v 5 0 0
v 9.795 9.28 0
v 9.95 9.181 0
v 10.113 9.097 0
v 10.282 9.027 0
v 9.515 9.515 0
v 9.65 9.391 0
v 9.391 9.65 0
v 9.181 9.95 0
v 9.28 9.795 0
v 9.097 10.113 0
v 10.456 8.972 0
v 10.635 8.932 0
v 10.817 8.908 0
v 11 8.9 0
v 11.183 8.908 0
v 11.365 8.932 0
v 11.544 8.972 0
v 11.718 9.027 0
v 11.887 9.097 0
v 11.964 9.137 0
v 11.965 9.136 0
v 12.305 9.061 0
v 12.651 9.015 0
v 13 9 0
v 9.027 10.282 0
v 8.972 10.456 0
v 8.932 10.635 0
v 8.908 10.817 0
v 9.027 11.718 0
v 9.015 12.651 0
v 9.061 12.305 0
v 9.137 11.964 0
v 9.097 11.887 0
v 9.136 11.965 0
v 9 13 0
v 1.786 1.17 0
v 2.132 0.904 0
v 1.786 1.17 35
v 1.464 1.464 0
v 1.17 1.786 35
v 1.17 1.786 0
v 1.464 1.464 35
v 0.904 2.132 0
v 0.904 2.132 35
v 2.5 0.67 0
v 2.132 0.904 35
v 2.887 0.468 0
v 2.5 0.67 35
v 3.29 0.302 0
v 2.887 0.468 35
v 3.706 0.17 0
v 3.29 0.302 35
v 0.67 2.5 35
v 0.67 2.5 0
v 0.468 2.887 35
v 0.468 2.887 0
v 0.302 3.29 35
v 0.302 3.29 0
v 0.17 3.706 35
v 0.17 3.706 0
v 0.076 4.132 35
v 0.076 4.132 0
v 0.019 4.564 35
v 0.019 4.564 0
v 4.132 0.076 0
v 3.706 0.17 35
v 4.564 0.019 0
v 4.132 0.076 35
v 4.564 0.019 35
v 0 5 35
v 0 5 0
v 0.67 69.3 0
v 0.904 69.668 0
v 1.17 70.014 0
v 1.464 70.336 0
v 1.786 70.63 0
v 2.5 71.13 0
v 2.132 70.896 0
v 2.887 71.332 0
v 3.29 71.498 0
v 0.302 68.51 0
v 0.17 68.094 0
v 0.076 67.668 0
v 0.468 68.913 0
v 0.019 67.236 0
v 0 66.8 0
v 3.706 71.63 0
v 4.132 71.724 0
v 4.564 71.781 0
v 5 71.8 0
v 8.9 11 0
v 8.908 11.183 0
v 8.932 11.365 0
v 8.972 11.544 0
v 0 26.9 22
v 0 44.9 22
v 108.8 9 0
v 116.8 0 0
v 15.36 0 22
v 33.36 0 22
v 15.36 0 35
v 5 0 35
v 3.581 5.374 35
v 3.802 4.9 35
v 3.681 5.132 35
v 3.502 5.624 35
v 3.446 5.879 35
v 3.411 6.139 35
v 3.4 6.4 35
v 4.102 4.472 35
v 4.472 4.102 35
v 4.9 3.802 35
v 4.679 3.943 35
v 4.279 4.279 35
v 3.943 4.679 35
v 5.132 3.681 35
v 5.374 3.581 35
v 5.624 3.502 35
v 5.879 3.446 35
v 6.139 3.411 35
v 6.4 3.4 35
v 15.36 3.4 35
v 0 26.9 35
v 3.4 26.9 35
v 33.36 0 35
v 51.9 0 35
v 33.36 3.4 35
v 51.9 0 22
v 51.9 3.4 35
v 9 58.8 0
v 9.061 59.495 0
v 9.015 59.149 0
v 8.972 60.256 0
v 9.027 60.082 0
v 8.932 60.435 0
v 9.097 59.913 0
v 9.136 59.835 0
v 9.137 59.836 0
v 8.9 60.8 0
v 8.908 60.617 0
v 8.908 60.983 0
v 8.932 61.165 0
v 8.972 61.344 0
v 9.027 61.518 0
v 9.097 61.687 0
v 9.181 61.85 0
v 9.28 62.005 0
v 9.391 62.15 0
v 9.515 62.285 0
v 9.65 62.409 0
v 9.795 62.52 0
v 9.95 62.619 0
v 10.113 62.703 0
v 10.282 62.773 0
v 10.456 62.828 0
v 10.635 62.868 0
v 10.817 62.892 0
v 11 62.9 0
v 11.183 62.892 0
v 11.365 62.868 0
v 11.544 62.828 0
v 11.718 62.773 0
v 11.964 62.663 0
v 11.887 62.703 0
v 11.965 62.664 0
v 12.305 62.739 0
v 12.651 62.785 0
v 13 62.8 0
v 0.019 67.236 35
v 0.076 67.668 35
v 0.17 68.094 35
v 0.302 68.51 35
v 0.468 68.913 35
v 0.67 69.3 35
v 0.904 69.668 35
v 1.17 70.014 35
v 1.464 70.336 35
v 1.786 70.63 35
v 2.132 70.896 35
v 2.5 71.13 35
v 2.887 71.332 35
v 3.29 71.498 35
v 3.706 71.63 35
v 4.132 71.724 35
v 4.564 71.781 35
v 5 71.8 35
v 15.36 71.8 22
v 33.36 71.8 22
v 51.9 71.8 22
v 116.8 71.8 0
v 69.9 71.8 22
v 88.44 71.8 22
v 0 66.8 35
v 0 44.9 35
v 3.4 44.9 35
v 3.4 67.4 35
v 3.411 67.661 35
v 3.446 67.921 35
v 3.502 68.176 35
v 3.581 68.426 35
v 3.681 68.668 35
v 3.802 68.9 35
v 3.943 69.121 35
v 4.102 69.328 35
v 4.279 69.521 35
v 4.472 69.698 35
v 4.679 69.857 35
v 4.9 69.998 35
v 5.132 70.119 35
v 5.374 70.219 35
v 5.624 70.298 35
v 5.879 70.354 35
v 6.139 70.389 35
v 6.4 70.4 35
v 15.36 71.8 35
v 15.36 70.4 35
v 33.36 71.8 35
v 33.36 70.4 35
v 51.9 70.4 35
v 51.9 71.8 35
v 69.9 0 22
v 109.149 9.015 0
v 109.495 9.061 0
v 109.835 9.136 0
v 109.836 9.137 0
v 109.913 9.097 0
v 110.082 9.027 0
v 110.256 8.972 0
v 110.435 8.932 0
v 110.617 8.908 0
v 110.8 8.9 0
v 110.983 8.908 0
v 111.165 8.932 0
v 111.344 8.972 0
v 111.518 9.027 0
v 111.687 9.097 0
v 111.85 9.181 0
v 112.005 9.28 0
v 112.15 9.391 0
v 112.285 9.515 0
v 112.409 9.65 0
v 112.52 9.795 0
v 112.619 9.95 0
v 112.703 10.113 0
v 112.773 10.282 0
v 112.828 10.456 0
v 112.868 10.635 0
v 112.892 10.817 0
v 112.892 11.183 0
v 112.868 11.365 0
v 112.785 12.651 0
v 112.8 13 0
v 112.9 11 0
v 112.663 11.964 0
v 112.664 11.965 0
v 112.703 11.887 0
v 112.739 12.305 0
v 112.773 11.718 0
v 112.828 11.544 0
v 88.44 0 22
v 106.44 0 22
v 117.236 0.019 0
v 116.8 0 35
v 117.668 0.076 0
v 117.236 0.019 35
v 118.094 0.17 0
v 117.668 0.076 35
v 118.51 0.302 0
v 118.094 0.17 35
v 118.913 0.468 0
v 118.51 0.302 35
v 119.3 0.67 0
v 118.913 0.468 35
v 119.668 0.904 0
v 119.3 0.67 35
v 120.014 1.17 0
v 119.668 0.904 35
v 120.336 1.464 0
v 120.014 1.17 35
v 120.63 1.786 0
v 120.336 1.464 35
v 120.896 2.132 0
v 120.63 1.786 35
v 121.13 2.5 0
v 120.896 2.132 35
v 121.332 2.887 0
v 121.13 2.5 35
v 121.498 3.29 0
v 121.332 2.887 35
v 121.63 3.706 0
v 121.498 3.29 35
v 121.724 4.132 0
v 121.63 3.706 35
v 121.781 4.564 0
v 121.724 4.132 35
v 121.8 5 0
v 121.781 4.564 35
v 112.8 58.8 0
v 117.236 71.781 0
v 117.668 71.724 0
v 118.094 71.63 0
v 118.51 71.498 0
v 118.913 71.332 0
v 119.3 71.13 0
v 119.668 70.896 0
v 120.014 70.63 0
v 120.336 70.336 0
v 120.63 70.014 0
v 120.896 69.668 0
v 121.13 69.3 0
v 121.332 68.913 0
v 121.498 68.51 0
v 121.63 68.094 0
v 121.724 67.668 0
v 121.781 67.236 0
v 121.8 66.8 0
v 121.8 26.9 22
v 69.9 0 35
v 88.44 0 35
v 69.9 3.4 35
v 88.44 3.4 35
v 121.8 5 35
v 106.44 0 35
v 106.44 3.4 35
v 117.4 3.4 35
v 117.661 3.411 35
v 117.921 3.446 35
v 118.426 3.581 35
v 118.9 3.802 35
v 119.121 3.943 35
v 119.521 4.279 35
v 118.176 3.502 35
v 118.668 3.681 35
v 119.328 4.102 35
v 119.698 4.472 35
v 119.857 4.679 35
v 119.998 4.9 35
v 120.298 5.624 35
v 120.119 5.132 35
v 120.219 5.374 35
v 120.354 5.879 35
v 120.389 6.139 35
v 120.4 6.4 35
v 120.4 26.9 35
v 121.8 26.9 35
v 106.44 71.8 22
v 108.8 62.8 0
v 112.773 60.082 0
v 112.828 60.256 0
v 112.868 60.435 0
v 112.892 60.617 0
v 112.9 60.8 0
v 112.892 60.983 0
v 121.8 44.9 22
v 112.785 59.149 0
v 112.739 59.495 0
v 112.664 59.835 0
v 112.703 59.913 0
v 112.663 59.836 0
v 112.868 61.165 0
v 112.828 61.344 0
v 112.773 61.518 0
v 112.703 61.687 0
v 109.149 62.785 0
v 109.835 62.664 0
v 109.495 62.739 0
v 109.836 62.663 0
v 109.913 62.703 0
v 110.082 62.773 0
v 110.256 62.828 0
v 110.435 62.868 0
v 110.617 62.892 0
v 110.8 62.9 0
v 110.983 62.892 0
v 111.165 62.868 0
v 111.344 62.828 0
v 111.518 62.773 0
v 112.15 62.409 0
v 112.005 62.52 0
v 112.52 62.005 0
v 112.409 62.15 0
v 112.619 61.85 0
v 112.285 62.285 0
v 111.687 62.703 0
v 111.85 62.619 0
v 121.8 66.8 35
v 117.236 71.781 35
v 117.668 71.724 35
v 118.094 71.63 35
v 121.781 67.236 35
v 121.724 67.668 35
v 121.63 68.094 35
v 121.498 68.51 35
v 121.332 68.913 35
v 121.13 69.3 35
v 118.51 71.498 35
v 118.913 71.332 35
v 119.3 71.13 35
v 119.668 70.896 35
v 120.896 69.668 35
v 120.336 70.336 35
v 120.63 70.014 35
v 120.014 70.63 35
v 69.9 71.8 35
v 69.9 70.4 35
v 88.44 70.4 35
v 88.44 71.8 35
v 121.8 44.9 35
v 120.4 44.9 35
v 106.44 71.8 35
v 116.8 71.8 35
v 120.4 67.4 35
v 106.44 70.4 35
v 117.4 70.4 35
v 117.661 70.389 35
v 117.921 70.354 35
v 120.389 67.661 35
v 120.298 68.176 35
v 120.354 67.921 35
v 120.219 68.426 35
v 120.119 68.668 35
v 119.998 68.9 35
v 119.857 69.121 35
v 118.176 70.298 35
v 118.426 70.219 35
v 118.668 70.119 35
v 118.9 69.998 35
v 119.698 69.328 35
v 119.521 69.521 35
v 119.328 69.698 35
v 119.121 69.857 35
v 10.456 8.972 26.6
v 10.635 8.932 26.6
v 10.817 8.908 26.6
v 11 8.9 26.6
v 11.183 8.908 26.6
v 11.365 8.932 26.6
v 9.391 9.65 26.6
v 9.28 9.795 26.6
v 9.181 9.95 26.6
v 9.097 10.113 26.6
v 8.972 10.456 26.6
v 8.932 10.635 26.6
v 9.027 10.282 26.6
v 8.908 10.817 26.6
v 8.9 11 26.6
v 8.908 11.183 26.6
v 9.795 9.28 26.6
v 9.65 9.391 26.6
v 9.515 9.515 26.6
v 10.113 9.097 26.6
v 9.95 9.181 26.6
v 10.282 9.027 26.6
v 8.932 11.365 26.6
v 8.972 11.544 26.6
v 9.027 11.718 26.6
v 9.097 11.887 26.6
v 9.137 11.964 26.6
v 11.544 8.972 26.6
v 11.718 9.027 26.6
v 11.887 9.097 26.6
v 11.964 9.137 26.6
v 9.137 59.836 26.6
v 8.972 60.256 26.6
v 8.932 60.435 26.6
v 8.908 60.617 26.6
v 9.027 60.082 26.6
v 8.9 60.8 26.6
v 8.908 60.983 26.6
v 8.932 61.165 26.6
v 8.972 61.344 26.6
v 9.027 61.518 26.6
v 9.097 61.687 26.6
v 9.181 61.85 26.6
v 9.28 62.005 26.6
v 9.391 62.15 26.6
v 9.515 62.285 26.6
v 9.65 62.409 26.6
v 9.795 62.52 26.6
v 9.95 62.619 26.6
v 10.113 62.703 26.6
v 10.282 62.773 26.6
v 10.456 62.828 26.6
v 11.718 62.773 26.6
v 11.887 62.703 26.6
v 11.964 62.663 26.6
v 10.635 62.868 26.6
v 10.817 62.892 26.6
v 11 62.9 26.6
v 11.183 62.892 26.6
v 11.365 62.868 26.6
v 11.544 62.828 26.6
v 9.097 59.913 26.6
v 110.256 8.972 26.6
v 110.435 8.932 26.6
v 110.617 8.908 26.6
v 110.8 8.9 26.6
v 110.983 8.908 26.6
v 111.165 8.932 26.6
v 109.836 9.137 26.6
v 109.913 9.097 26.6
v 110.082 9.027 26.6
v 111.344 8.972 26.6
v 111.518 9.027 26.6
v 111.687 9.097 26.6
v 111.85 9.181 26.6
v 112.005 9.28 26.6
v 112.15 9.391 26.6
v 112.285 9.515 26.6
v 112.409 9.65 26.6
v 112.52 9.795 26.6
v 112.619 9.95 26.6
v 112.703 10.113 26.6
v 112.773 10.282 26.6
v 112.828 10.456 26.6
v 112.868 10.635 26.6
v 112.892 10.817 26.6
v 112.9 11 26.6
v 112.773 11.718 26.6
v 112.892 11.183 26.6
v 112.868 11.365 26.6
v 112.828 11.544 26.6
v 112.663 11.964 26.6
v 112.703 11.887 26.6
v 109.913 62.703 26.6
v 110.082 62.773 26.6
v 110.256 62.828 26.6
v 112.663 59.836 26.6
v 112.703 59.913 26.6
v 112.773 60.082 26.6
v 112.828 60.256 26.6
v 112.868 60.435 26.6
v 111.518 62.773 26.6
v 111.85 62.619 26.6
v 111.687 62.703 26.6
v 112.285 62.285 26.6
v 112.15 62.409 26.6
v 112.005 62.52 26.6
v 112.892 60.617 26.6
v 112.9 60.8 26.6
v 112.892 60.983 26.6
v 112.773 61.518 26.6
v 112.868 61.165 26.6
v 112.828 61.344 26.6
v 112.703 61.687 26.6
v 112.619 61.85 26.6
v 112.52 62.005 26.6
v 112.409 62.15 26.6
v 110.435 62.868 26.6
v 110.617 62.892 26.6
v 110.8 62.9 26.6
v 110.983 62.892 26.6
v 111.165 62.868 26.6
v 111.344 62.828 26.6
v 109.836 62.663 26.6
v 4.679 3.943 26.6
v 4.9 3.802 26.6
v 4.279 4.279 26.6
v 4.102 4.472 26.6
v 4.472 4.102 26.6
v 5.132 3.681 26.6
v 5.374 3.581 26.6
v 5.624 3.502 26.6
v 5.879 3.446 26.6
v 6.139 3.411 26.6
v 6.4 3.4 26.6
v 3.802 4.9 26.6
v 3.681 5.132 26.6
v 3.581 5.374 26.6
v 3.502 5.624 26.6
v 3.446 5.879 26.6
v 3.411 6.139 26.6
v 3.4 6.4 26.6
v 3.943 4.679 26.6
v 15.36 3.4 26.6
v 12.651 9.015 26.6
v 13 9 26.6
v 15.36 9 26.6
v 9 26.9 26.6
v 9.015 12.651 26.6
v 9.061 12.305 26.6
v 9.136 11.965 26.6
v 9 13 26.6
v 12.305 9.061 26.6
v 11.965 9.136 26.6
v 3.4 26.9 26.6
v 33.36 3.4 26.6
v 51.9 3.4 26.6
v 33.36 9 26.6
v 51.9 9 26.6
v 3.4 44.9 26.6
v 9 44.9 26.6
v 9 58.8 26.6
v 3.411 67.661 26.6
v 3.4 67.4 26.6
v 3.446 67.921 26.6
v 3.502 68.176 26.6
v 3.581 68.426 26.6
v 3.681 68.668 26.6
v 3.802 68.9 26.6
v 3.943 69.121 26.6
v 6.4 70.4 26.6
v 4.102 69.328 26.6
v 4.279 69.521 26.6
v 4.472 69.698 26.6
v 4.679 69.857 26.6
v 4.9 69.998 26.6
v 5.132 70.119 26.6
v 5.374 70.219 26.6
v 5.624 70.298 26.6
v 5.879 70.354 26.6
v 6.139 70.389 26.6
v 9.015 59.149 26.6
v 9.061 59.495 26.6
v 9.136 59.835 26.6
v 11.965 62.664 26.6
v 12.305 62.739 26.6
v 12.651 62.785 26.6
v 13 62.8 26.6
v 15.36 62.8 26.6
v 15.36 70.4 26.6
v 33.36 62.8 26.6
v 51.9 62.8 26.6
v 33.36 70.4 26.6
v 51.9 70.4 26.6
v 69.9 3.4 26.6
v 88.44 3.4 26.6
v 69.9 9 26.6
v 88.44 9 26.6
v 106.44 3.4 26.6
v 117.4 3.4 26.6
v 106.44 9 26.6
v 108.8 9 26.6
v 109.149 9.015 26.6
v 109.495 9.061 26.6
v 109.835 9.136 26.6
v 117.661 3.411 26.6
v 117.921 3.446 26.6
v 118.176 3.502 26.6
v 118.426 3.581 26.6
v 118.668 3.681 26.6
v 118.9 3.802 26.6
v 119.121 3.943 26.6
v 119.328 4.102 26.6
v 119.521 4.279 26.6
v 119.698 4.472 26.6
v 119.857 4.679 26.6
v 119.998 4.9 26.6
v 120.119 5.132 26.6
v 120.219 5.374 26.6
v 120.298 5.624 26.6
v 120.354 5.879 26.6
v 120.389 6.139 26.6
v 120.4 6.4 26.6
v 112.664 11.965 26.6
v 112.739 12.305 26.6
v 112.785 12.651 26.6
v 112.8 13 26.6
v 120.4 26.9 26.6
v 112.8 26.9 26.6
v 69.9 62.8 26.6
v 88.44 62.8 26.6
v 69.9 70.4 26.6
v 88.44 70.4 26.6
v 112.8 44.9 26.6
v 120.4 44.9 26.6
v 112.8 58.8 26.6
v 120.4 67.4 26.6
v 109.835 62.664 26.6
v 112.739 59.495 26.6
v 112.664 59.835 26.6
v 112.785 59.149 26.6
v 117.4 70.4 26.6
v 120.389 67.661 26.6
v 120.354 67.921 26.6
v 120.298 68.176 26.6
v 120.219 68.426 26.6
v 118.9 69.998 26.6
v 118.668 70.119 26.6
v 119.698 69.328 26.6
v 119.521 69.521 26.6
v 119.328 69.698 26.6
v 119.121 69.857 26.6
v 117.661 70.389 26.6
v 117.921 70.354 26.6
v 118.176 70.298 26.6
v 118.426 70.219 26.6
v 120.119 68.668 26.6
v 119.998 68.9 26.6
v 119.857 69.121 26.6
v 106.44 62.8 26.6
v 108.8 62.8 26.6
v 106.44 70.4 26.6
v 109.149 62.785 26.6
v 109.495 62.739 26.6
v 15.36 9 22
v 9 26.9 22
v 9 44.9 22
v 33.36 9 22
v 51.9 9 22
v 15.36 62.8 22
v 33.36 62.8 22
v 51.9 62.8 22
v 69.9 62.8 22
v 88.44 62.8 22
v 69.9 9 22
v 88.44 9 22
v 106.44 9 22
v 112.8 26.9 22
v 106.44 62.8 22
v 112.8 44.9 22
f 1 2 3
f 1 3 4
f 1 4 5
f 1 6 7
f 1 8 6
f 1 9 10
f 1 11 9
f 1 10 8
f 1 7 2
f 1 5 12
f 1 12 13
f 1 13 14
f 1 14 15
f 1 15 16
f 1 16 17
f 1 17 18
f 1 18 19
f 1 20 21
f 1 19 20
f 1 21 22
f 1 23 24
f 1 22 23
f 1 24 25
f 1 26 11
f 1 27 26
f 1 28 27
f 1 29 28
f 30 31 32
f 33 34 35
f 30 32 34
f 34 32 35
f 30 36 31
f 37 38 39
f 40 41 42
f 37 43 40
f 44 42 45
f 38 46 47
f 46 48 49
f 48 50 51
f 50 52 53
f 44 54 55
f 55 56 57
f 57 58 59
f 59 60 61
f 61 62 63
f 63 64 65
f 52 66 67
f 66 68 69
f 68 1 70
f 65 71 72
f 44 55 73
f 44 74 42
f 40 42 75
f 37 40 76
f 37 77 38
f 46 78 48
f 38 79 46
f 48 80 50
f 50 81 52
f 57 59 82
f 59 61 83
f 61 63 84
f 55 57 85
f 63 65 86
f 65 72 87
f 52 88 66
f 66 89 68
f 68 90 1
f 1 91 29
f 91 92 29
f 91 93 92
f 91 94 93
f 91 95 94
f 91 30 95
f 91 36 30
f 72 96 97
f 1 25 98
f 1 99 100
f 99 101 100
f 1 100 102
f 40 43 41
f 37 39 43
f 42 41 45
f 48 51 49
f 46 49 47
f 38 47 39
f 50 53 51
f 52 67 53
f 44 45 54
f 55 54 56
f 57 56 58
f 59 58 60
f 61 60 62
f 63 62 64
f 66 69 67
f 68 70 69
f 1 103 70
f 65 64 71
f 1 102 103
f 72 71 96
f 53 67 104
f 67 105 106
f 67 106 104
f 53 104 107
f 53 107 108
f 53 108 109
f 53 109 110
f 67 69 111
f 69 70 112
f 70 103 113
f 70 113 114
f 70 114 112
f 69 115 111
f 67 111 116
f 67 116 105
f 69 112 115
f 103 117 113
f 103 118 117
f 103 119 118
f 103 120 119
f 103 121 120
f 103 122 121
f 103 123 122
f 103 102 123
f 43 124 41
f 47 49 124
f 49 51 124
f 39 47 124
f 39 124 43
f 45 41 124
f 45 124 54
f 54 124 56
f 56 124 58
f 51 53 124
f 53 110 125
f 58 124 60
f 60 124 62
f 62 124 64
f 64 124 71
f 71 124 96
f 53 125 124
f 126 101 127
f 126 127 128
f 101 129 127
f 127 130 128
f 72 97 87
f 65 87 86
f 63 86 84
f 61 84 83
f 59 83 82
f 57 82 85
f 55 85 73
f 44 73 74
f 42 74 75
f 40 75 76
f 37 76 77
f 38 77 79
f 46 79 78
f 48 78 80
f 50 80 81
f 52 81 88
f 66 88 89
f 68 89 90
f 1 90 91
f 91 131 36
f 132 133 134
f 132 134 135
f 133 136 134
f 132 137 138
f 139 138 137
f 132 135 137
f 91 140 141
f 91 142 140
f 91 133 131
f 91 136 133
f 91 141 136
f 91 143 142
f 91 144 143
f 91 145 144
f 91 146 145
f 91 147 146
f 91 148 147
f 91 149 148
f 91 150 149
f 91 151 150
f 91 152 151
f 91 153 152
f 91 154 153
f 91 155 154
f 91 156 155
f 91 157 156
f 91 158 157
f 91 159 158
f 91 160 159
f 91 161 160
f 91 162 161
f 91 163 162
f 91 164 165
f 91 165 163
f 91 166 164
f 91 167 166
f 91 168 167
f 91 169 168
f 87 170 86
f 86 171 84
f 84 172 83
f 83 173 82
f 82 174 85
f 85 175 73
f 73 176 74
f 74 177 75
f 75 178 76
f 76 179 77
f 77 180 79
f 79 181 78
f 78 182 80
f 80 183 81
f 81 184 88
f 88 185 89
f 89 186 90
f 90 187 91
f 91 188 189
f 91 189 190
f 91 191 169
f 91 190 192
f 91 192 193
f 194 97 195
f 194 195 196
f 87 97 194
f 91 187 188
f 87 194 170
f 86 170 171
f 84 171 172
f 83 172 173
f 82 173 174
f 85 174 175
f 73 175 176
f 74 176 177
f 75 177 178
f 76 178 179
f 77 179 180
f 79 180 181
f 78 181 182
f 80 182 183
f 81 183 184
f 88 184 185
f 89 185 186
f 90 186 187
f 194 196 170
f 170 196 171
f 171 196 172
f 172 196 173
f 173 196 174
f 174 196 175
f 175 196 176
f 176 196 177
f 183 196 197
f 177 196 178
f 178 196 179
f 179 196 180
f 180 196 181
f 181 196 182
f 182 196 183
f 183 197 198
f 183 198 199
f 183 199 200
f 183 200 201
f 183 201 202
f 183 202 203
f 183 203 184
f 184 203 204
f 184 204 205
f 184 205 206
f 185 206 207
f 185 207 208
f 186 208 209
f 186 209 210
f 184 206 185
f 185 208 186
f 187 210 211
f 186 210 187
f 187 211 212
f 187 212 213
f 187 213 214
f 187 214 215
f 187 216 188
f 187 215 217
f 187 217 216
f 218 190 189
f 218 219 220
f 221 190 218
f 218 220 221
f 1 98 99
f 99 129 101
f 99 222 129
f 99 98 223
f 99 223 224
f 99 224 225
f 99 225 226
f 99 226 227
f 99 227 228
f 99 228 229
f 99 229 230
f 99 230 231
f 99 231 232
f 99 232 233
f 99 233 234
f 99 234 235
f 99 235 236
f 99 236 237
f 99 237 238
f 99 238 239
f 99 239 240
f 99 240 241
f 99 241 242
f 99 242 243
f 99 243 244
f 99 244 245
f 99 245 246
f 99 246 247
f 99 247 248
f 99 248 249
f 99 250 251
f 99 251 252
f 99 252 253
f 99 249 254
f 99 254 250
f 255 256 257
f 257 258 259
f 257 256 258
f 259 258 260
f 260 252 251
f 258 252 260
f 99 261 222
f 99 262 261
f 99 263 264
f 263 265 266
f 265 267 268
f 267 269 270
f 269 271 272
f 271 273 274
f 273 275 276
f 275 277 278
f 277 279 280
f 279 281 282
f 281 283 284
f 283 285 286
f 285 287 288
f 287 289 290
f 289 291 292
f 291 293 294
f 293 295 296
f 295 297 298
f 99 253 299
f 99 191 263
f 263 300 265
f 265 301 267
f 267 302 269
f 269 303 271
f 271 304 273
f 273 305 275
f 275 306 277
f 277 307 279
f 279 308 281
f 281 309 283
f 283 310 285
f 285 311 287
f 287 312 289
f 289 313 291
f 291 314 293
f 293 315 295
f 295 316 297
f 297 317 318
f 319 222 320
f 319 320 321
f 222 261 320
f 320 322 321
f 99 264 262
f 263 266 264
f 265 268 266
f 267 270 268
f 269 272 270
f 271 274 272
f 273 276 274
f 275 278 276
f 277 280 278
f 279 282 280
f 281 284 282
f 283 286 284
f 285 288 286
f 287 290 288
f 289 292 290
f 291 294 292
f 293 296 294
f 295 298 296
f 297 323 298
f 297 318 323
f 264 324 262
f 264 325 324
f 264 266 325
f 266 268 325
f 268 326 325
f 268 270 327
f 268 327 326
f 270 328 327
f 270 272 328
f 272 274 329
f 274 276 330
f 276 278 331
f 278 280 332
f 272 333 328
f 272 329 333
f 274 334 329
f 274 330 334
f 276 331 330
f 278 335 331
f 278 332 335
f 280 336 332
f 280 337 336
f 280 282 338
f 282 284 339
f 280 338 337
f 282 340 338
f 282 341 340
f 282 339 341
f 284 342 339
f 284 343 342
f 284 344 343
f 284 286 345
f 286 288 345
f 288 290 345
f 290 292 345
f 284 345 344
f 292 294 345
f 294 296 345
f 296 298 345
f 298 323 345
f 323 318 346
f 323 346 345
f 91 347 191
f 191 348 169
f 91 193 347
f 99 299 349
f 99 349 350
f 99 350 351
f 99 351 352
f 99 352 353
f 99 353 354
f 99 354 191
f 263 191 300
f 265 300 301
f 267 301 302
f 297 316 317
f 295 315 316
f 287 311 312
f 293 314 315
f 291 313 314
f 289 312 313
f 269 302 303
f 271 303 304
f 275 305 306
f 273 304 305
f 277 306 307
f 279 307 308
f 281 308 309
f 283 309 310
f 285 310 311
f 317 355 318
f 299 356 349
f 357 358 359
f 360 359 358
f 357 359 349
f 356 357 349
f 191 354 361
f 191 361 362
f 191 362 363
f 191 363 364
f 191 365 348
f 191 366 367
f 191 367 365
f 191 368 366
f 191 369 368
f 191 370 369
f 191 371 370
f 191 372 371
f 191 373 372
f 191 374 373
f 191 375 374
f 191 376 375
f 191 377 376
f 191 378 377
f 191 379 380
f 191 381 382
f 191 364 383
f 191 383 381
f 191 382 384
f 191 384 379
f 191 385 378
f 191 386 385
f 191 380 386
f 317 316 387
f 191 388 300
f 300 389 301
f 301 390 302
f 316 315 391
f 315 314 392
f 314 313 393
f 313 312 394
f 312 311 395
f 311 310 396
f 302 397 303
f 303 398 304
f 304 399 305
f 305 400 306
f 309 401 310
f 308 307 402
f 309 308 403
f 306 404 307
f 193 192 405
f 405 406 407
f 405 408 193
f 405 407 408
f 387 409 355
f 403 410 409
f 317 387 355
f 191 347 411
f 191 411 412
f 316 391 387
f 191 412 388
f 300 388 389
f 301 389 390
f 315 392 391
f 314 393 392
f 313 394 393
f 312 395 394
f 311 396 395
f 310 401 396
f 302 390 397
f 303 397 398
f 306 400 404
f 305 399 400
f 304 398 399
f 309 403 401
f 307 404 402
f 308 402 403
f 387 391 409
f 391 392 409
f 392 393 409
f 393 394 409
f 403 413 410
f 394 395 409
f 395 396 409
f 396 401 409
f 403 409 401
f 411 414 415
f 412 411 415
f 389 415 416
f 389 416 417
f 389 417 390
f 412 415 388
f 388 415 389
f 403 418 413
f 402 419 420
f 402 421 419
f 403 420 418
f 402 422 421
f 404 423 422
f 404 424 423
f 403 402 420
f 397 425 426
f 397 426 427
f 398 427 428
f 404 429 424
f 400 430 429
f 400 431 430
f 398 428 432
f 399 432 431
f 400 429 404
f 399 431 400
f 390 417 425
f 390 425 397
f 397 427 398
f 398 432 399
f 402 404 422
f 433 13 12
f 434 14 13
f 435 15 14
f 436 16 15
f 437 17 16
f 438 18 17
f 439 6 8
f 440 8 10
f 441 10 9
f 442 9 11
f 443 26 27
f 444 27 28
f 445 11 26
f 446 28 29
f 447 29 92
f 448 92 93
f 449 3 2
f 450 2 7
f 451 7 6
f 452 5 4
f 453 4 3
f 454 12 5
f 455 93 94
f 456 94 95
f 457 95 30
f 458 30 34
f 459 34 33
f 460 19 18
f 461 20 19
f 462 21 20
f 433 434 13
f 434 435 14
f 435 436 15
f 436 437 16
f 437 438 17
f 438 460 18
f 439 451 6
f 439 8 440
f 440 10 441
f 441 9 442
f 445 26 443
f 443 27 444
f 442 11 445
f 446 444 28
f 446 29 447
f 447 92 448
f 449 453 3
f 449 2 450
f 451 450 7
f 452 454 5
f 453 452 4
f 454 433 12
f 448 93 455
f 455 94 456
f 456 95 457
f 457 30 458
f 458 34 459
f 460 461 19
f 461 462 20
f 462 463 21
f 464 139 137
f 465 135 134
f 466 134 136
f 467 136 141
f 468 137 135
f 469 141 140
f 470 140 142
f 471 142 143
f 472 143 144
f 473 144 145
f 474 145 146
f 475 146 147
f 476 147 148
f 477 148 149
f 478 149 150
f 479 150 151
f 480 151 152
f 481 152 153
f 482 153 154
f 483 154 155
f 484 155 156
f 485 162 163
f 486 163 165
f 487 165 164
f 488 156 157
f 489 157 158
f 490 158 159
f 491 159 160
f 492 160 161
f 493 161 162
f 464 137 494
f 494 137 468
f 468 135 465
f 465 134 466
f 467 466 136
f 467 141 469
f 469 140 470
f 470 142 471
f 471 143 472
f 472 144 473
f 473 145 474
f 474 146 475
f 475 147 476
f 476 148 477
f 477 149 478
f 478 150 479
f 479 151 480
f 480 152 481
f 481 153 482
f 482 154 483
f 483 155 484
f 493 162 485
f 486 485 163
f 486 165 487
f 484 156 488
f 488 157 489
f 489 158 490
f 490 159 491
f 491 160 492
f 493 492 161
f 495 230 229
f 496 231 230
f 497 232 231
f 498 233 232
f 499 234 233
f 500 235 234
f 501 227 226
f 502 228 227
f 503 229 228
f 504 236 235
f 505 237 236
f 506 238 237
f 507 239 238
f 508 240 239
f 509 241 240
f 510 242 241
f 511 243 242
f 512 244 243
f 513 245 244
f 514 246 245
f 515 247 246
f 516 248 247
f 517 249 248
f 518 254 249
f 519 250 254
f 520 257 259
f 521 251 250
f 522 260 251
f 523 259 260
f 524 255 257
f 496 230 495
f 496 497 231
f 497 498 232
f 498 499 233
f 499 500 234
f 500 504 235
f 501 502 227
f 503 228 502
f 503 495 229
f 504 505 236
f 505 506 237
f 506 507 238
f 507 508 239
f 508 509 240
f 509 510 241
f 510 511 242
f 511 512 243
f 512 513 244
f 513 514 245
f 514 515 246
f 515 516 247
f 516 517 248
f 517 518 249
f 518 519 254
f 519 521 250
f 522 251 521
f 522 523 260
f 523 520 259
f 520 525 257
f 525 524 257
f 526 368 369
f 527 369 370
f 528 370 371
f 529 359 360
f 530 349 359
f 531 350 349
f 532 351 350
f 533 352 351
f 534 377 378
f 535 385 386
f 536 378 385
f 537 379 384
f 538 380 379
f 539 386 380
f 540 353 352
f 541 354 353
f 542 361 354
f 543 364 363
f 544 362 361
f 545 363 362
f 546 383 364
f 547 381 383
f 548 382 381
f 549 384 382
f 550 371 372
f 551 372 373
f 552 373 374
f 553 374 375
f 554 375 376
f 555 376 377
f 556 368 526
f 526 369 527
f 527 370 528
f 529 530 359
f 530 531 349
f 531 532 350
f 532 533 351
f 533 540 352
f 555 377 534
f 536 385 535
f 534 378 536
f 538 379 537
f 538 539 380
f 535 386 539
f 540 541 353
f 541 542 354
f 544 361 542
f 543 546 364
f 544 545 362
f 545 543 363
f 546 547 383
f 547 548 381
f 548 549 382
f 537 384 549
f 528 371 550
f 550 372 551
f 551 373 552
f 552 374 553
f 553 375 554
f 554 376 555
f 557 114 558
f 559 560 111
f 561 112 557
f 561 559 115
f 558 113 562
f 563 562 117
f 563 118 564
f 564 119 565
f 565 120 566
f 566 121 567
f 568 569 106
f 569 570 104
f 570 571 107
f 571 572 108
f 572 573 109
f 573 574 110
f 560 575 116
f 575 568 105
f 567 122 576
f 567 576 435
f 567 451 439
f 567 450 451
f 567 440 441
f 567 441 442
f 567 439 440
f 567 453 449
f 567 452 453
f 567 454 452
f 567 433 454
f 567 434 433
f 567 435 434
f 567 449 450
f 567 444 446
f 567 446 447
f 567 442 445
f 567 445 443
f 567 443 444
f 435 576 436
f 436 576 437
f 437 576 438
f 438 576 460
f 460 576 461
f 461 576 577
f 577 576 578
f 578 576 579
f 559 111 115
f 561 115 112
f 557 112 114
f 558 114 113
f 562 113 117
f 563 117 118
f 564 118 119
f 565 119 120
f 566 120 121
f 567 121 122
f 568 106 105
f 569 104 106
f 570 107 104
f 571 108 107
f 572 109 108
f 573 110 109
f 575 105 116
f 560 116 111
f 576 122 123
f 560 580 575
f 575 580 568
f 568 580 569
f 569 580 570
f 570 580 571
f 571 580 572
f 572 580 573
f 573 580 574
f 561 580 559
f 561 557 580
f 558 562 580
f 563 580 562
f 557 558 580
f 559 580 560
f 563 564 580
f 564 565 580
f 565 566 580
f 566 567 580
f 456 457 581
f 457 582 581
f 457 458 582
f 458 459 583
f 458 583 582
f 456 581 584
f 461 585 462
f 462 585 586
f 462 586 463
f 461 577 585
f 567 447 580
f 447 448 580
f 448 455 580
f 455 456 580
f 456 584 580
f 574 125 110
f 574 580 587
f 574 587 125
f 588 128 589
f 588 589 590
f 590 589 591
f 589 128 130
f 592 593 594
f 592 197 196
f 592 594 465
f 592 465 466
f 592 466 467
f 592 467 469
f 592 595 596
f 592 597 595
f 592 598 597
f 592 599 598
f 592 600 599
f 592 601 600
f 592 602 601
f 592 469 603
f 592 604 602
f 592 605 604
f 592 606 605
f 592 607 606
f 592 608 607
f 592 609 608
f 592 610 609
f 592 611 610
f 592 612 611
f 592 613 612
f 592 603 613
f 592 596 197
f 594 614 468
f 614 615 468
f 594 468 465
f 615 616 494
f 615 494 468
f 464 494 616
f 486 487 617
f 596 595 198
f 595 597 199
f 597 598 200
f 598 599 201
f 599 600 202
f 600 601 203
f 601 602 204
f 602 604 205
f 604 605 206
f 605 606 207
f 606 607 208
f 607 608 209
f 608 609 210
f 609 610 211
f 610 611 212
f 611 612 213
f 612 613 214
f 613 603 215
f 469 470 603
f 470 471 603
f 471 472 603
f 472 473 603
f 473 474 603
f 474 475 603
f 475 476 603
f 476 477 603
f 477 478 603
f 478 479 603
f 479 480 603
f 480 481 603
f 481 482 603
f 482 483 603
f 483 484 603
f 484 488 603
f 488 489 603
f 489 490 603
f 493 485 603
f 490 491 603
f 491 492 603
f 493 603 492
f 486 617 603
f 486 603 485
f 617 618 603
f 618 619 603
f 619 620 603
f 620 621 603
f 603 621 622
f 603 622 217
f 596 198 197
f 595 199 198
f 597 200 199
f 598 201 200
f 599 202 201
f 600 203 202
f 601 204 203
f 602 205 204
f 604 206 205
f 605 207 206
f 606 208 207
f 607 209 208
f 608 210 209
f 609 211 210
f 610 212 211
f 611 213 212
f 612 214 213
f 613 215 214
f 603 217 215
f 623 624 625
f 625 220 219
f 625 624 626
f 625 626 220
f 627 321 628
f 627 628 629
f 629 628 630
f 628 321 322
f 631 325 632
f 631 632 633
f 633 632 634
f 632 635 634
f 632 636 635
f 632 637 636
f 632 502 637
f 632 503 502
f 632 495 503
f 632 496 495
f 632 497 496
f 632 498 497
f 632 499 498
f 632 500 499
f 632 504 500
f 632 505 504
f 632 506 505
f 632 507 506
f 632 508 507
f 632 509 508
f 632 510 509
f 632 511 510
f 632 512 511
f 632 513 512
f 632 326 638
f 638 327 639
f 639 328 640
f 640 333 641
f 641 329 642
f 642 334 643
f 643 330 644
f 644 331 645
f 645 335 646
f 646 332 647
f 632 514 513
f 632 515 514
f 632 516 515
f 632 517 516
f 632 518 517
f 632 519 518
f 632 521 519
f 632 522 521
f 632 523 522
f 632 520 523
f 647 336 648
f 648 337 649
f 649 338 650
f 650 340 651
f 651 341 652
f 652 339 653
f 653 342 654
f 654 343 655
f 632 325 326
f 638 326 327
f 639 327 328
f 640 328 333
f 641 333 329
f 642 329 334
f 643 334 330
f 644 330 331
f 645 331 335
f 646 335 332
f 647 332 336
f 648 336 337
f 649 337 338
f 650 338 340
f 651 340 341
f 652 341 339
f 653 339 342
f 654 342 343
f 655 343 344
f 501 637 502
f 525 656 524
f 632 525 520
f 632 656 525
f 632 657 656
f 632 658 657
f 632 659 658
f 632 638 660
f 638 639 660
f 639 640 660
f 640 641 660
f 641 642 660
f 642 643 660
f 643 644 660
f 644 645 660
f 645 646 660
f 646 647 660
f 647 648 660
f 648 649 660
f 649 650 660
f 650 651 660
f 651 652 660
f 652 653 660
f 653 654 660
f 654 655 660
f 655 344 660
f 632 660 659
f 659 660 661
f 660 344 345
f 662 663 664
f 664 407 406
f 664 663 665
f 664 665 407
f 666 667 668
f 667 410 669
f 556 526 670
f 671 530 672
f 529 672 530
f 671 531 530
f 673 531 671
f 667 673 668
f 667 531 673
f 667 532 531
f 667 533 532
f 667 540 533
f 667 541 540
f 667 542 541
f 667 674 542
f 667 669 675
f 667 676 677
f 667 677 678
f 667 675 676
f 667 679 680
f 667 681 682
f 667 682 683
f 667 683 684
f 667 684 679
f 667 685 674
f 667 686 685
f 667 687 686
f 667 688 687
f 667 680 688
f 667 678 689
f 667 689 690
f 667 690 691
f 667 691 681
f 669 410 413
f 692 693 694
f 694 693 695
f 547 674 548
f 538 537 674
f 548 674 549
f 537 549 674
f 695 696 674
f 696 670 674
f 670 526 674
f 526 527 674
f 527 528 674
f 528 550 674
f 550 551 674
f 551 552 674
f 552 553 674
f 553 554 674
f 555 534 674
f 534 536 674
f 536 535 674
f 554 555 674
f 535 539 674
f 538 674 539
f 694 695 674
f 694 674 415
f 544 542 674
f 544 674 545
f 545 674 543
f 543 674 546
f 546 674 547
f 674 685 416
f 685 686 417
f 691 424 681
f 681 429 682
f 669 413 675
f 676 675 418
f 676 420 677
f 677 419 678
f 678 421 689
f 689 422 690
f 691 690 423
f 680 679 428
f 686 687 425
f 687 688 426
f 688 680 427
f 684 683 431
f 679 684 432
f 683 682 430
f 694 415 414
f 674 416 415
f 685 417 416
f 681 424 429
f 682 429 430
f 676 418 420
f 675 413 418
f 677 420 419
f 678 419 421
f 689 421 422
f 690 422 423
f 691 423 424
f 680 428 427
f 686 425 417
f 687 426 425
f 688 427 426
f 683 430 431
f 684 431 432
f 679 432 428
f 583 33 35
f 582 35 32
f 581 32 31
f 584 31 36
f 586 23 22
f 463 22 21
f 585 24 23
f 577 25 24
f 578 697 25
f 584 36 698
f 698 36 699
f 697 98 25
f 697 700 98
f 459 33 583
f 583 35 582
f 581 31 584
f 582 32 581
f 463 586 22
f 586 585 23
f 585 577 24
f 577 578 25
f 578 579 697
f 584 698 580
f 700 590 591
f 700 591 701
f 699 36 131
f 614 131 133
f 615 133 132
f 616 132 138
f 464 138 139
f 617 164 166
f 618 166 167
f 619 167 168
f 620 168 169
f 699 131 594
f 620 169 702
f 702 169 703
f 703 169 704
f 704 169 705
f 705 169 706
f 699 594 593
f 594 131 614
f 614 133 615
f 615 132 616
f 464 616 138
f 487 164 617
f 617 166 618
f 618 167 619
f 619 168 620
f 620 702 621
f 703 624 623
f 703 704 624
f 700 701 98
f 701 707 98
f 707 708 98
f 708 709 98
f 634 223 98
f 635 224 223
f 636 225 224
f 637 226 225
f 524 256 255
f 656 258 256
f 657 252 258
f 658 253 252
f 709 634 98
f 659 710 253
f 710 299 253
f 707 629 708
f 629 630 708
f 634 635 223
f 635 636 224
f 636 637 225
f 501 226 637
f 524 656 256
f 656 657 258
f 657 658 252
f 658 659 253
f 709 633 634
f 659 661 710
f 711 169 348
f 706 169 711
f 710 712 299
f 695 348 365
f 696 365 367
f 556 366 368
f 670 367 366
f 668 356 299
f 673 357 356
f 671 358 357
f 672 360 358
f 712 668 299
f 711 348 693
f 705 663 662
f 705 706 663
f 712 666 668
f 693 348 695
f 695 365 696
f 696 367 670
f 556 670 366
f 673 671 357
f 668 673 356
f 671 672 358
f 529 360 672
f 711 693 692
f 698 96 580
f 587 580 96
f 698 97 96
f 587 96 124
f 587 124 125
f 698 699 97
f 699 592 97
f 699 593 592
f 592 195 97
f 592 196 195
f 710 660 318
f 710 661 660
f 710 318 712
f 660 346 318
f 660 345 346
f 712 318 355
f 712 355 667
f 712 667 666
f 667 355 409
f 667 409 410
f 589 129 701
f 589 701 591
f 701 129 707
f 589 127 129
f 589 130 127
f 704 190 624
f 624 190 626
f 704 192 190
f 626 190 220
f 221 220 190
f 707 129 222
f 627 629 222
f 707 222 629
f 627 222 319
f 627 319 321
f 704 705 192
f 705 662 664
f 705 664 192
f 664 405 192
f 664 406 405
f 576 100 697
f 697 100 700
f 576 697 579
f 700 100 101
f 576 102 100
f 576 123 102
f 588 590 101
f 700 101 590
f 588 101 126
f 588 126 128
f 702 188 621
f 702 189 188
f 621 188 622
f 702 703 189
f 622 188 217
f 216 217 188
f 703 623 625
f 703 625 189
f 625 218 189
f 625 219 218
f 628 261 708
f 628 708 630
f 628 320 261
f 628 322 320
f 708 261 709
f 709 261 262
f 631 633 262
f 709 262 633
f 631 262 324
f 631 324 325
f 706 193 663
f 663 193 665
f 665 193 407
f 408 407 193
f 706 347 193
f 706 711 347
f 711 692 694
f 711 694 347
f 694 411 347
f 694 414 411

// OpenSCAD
// file: common.scad
$fn = 72;

module rounded_plate(size=[100, 100, 8], r=8) {
    hull() {
        for (x = [r, size[0] - r]) {
            for (y = [r, size[1] - r]) {
                translate([x, y, 0]) cylinder(h=size[2], r=r);
            }
        }
    }
}

module screw_hole(d=5.2, h=20) {
    translate([0, 0, -0.5]) cylinder(h=h + 1, d=d);
}

module countersink(d1=10, d2=5.2, h=4) {
    cylinder(h=h, d1=d1, d2=d2);
}

module rib(length=100, height=18, thickness=5) {
    rotate([90, 0, 0])
        linear_extrude(height=thickness)
            polygon(points=[[0, 0], [length, 0], [length, height], [0, 0]]);
}

module rounded_box(size=[100, 50, 30], r=6) {
    hull() {
        for (x = [r, size[0] - r]) {
            for (y = [r, size[1] - r]) {
                for (z = [r, size[2] - r]) {
                    translate([x, y, z]) sphere(r=r);
                }
            }
        }
    }
}
// main file
include <common.scad>

// Raised tray for the collector breadboard prototype.
// User estimate: breadboard footprint 115 x 65 mm, stand height 35 mm.

breadboard_len = 115;
breadboard_w = 65;
breadboard_clearance = 1.0;

wall_t = 2.4;
floor_t = 3.0;
total_h = 35;
lip_h = 8;
corner_r = 5;

outer_len = breadboard_len + 2 * (wall_t + breadboard_clearance);
outer_w = breadboard_w + 2 * (wall_t + breadboard_clearance);
inner_len = breadboard_len + 2 * breadboard_clearance;
inner_w = breadboard_w + 2 * breadboard_clearance;

window_margin = 9;
post_d = 10;
screw_d = 4.2;      // M4 clearance, also usable as pilot for wood screws.
screw_head_d = 8.5;
cable_slot_w = 18;
cable_slot_h = 18;
cable_drop_len = 78;
cable_drop_w = 22;

module rounded_rect_2d(size=[100, 50], r=5) {
    hull() {
        for (x = [r, size[0] - r]) {
            for (y = [r, size[1] - r]) {
                translate([x, y]) circle(r=r);
            }
        }
    }
}

module rounded_prism(size=[100, 50, 10], r=5) {
    linear_extrude(height=size[2])
        rounded_rect_2d([size[0], size[1]], r);
}

module cable_slot_x(y, z=total_h - lip_h / 2) {
    translate([-1, y - cable_slot_w / 2, z - cable_slot_h / 2])
        cube([outer_len + 2, cable_slot_w, cable_slot_h]);
}

module cable_slot_y(x, z=total_h - lip_h / 2) {
    translate([x - cable_slot_w / 2, -1, z - cable_slot_h / 2])
        cube([cable_slot_w, outer_w + 2, cable_slot_h]);
}

module mount_hole(x, y) {
    translate([x, y, -1])
        cylinder(h=total_h + 2, d=screw_d);
    translate([x, y, total_h - 2.2])
        cylinder(h=3.4, d1=screw_head_d, d2=screw_d);
}

module underside_window() {
    translate([window_margin, window_margin, -1])
        rounded_prism(
            [outer_len - 2 * window_margin, outer_w - 2 * window_margin, total_h - floor_t],
            4
        );
}

module cable_drop_window() {
    translate([
        outer_len / 2 - cable_drop_len / 2,
        outer_w / 2 - cable_drop_w / 2,
        total_h - lip_h - 1
    ])
        rounded_prism([cable_drop_len, cable_drop_w, lip_h + 3], 4);
}

module collector_breadboard_base() {
    difference() {
        union() {
            rounded_prism([outer_len, outer_w, total_h], corner_r);

            // Four internal bosses keep screw loads away from the hollow shell.
            for (x = [11, outer_len - 11]) {
                for (y = [11, outer_w - 11]) {
                    translate([x, y, 0])
                        cylinder(h=total_h, d=post_d);
                }
            }
        }

        // Top pocket. The breadboard rests on a flat shelf and is retained by
        // the short lip without covering the jumper holes.
        translate([wall_t + breadboard_clearance, wall_t + breadboard_clearance, total_h - lip_h - 0.4])
            rounded_prism([inner_len, inner_w, lip_h + 2], max(corner_r - 2, 1));

        // Hollow underside to reduce filament while leaving a stiff rim.
        underside_window();

        // Downward cable pass-through into the hollow underside. This keeps
        // jumper bundles exiting below the tray instead of across the top edge.
        cable_drop_window();

        // Cable exits: power at the top, USB/front, and jumper bundles left/right.
        cable_slot_x(outer_w / 2);
        cable_slot_y(outer_len / 2);
        cable_slot_y(outer_len * 0.20);
        cable_slot_y(outer_len * 0.80);

        for (x = [11, outer_len - 11]) {
            for (y = [11, outer_w - 11]) {
                mount_hole(x, y);
            }
        }
    }
}

collector_breadboard_base();
